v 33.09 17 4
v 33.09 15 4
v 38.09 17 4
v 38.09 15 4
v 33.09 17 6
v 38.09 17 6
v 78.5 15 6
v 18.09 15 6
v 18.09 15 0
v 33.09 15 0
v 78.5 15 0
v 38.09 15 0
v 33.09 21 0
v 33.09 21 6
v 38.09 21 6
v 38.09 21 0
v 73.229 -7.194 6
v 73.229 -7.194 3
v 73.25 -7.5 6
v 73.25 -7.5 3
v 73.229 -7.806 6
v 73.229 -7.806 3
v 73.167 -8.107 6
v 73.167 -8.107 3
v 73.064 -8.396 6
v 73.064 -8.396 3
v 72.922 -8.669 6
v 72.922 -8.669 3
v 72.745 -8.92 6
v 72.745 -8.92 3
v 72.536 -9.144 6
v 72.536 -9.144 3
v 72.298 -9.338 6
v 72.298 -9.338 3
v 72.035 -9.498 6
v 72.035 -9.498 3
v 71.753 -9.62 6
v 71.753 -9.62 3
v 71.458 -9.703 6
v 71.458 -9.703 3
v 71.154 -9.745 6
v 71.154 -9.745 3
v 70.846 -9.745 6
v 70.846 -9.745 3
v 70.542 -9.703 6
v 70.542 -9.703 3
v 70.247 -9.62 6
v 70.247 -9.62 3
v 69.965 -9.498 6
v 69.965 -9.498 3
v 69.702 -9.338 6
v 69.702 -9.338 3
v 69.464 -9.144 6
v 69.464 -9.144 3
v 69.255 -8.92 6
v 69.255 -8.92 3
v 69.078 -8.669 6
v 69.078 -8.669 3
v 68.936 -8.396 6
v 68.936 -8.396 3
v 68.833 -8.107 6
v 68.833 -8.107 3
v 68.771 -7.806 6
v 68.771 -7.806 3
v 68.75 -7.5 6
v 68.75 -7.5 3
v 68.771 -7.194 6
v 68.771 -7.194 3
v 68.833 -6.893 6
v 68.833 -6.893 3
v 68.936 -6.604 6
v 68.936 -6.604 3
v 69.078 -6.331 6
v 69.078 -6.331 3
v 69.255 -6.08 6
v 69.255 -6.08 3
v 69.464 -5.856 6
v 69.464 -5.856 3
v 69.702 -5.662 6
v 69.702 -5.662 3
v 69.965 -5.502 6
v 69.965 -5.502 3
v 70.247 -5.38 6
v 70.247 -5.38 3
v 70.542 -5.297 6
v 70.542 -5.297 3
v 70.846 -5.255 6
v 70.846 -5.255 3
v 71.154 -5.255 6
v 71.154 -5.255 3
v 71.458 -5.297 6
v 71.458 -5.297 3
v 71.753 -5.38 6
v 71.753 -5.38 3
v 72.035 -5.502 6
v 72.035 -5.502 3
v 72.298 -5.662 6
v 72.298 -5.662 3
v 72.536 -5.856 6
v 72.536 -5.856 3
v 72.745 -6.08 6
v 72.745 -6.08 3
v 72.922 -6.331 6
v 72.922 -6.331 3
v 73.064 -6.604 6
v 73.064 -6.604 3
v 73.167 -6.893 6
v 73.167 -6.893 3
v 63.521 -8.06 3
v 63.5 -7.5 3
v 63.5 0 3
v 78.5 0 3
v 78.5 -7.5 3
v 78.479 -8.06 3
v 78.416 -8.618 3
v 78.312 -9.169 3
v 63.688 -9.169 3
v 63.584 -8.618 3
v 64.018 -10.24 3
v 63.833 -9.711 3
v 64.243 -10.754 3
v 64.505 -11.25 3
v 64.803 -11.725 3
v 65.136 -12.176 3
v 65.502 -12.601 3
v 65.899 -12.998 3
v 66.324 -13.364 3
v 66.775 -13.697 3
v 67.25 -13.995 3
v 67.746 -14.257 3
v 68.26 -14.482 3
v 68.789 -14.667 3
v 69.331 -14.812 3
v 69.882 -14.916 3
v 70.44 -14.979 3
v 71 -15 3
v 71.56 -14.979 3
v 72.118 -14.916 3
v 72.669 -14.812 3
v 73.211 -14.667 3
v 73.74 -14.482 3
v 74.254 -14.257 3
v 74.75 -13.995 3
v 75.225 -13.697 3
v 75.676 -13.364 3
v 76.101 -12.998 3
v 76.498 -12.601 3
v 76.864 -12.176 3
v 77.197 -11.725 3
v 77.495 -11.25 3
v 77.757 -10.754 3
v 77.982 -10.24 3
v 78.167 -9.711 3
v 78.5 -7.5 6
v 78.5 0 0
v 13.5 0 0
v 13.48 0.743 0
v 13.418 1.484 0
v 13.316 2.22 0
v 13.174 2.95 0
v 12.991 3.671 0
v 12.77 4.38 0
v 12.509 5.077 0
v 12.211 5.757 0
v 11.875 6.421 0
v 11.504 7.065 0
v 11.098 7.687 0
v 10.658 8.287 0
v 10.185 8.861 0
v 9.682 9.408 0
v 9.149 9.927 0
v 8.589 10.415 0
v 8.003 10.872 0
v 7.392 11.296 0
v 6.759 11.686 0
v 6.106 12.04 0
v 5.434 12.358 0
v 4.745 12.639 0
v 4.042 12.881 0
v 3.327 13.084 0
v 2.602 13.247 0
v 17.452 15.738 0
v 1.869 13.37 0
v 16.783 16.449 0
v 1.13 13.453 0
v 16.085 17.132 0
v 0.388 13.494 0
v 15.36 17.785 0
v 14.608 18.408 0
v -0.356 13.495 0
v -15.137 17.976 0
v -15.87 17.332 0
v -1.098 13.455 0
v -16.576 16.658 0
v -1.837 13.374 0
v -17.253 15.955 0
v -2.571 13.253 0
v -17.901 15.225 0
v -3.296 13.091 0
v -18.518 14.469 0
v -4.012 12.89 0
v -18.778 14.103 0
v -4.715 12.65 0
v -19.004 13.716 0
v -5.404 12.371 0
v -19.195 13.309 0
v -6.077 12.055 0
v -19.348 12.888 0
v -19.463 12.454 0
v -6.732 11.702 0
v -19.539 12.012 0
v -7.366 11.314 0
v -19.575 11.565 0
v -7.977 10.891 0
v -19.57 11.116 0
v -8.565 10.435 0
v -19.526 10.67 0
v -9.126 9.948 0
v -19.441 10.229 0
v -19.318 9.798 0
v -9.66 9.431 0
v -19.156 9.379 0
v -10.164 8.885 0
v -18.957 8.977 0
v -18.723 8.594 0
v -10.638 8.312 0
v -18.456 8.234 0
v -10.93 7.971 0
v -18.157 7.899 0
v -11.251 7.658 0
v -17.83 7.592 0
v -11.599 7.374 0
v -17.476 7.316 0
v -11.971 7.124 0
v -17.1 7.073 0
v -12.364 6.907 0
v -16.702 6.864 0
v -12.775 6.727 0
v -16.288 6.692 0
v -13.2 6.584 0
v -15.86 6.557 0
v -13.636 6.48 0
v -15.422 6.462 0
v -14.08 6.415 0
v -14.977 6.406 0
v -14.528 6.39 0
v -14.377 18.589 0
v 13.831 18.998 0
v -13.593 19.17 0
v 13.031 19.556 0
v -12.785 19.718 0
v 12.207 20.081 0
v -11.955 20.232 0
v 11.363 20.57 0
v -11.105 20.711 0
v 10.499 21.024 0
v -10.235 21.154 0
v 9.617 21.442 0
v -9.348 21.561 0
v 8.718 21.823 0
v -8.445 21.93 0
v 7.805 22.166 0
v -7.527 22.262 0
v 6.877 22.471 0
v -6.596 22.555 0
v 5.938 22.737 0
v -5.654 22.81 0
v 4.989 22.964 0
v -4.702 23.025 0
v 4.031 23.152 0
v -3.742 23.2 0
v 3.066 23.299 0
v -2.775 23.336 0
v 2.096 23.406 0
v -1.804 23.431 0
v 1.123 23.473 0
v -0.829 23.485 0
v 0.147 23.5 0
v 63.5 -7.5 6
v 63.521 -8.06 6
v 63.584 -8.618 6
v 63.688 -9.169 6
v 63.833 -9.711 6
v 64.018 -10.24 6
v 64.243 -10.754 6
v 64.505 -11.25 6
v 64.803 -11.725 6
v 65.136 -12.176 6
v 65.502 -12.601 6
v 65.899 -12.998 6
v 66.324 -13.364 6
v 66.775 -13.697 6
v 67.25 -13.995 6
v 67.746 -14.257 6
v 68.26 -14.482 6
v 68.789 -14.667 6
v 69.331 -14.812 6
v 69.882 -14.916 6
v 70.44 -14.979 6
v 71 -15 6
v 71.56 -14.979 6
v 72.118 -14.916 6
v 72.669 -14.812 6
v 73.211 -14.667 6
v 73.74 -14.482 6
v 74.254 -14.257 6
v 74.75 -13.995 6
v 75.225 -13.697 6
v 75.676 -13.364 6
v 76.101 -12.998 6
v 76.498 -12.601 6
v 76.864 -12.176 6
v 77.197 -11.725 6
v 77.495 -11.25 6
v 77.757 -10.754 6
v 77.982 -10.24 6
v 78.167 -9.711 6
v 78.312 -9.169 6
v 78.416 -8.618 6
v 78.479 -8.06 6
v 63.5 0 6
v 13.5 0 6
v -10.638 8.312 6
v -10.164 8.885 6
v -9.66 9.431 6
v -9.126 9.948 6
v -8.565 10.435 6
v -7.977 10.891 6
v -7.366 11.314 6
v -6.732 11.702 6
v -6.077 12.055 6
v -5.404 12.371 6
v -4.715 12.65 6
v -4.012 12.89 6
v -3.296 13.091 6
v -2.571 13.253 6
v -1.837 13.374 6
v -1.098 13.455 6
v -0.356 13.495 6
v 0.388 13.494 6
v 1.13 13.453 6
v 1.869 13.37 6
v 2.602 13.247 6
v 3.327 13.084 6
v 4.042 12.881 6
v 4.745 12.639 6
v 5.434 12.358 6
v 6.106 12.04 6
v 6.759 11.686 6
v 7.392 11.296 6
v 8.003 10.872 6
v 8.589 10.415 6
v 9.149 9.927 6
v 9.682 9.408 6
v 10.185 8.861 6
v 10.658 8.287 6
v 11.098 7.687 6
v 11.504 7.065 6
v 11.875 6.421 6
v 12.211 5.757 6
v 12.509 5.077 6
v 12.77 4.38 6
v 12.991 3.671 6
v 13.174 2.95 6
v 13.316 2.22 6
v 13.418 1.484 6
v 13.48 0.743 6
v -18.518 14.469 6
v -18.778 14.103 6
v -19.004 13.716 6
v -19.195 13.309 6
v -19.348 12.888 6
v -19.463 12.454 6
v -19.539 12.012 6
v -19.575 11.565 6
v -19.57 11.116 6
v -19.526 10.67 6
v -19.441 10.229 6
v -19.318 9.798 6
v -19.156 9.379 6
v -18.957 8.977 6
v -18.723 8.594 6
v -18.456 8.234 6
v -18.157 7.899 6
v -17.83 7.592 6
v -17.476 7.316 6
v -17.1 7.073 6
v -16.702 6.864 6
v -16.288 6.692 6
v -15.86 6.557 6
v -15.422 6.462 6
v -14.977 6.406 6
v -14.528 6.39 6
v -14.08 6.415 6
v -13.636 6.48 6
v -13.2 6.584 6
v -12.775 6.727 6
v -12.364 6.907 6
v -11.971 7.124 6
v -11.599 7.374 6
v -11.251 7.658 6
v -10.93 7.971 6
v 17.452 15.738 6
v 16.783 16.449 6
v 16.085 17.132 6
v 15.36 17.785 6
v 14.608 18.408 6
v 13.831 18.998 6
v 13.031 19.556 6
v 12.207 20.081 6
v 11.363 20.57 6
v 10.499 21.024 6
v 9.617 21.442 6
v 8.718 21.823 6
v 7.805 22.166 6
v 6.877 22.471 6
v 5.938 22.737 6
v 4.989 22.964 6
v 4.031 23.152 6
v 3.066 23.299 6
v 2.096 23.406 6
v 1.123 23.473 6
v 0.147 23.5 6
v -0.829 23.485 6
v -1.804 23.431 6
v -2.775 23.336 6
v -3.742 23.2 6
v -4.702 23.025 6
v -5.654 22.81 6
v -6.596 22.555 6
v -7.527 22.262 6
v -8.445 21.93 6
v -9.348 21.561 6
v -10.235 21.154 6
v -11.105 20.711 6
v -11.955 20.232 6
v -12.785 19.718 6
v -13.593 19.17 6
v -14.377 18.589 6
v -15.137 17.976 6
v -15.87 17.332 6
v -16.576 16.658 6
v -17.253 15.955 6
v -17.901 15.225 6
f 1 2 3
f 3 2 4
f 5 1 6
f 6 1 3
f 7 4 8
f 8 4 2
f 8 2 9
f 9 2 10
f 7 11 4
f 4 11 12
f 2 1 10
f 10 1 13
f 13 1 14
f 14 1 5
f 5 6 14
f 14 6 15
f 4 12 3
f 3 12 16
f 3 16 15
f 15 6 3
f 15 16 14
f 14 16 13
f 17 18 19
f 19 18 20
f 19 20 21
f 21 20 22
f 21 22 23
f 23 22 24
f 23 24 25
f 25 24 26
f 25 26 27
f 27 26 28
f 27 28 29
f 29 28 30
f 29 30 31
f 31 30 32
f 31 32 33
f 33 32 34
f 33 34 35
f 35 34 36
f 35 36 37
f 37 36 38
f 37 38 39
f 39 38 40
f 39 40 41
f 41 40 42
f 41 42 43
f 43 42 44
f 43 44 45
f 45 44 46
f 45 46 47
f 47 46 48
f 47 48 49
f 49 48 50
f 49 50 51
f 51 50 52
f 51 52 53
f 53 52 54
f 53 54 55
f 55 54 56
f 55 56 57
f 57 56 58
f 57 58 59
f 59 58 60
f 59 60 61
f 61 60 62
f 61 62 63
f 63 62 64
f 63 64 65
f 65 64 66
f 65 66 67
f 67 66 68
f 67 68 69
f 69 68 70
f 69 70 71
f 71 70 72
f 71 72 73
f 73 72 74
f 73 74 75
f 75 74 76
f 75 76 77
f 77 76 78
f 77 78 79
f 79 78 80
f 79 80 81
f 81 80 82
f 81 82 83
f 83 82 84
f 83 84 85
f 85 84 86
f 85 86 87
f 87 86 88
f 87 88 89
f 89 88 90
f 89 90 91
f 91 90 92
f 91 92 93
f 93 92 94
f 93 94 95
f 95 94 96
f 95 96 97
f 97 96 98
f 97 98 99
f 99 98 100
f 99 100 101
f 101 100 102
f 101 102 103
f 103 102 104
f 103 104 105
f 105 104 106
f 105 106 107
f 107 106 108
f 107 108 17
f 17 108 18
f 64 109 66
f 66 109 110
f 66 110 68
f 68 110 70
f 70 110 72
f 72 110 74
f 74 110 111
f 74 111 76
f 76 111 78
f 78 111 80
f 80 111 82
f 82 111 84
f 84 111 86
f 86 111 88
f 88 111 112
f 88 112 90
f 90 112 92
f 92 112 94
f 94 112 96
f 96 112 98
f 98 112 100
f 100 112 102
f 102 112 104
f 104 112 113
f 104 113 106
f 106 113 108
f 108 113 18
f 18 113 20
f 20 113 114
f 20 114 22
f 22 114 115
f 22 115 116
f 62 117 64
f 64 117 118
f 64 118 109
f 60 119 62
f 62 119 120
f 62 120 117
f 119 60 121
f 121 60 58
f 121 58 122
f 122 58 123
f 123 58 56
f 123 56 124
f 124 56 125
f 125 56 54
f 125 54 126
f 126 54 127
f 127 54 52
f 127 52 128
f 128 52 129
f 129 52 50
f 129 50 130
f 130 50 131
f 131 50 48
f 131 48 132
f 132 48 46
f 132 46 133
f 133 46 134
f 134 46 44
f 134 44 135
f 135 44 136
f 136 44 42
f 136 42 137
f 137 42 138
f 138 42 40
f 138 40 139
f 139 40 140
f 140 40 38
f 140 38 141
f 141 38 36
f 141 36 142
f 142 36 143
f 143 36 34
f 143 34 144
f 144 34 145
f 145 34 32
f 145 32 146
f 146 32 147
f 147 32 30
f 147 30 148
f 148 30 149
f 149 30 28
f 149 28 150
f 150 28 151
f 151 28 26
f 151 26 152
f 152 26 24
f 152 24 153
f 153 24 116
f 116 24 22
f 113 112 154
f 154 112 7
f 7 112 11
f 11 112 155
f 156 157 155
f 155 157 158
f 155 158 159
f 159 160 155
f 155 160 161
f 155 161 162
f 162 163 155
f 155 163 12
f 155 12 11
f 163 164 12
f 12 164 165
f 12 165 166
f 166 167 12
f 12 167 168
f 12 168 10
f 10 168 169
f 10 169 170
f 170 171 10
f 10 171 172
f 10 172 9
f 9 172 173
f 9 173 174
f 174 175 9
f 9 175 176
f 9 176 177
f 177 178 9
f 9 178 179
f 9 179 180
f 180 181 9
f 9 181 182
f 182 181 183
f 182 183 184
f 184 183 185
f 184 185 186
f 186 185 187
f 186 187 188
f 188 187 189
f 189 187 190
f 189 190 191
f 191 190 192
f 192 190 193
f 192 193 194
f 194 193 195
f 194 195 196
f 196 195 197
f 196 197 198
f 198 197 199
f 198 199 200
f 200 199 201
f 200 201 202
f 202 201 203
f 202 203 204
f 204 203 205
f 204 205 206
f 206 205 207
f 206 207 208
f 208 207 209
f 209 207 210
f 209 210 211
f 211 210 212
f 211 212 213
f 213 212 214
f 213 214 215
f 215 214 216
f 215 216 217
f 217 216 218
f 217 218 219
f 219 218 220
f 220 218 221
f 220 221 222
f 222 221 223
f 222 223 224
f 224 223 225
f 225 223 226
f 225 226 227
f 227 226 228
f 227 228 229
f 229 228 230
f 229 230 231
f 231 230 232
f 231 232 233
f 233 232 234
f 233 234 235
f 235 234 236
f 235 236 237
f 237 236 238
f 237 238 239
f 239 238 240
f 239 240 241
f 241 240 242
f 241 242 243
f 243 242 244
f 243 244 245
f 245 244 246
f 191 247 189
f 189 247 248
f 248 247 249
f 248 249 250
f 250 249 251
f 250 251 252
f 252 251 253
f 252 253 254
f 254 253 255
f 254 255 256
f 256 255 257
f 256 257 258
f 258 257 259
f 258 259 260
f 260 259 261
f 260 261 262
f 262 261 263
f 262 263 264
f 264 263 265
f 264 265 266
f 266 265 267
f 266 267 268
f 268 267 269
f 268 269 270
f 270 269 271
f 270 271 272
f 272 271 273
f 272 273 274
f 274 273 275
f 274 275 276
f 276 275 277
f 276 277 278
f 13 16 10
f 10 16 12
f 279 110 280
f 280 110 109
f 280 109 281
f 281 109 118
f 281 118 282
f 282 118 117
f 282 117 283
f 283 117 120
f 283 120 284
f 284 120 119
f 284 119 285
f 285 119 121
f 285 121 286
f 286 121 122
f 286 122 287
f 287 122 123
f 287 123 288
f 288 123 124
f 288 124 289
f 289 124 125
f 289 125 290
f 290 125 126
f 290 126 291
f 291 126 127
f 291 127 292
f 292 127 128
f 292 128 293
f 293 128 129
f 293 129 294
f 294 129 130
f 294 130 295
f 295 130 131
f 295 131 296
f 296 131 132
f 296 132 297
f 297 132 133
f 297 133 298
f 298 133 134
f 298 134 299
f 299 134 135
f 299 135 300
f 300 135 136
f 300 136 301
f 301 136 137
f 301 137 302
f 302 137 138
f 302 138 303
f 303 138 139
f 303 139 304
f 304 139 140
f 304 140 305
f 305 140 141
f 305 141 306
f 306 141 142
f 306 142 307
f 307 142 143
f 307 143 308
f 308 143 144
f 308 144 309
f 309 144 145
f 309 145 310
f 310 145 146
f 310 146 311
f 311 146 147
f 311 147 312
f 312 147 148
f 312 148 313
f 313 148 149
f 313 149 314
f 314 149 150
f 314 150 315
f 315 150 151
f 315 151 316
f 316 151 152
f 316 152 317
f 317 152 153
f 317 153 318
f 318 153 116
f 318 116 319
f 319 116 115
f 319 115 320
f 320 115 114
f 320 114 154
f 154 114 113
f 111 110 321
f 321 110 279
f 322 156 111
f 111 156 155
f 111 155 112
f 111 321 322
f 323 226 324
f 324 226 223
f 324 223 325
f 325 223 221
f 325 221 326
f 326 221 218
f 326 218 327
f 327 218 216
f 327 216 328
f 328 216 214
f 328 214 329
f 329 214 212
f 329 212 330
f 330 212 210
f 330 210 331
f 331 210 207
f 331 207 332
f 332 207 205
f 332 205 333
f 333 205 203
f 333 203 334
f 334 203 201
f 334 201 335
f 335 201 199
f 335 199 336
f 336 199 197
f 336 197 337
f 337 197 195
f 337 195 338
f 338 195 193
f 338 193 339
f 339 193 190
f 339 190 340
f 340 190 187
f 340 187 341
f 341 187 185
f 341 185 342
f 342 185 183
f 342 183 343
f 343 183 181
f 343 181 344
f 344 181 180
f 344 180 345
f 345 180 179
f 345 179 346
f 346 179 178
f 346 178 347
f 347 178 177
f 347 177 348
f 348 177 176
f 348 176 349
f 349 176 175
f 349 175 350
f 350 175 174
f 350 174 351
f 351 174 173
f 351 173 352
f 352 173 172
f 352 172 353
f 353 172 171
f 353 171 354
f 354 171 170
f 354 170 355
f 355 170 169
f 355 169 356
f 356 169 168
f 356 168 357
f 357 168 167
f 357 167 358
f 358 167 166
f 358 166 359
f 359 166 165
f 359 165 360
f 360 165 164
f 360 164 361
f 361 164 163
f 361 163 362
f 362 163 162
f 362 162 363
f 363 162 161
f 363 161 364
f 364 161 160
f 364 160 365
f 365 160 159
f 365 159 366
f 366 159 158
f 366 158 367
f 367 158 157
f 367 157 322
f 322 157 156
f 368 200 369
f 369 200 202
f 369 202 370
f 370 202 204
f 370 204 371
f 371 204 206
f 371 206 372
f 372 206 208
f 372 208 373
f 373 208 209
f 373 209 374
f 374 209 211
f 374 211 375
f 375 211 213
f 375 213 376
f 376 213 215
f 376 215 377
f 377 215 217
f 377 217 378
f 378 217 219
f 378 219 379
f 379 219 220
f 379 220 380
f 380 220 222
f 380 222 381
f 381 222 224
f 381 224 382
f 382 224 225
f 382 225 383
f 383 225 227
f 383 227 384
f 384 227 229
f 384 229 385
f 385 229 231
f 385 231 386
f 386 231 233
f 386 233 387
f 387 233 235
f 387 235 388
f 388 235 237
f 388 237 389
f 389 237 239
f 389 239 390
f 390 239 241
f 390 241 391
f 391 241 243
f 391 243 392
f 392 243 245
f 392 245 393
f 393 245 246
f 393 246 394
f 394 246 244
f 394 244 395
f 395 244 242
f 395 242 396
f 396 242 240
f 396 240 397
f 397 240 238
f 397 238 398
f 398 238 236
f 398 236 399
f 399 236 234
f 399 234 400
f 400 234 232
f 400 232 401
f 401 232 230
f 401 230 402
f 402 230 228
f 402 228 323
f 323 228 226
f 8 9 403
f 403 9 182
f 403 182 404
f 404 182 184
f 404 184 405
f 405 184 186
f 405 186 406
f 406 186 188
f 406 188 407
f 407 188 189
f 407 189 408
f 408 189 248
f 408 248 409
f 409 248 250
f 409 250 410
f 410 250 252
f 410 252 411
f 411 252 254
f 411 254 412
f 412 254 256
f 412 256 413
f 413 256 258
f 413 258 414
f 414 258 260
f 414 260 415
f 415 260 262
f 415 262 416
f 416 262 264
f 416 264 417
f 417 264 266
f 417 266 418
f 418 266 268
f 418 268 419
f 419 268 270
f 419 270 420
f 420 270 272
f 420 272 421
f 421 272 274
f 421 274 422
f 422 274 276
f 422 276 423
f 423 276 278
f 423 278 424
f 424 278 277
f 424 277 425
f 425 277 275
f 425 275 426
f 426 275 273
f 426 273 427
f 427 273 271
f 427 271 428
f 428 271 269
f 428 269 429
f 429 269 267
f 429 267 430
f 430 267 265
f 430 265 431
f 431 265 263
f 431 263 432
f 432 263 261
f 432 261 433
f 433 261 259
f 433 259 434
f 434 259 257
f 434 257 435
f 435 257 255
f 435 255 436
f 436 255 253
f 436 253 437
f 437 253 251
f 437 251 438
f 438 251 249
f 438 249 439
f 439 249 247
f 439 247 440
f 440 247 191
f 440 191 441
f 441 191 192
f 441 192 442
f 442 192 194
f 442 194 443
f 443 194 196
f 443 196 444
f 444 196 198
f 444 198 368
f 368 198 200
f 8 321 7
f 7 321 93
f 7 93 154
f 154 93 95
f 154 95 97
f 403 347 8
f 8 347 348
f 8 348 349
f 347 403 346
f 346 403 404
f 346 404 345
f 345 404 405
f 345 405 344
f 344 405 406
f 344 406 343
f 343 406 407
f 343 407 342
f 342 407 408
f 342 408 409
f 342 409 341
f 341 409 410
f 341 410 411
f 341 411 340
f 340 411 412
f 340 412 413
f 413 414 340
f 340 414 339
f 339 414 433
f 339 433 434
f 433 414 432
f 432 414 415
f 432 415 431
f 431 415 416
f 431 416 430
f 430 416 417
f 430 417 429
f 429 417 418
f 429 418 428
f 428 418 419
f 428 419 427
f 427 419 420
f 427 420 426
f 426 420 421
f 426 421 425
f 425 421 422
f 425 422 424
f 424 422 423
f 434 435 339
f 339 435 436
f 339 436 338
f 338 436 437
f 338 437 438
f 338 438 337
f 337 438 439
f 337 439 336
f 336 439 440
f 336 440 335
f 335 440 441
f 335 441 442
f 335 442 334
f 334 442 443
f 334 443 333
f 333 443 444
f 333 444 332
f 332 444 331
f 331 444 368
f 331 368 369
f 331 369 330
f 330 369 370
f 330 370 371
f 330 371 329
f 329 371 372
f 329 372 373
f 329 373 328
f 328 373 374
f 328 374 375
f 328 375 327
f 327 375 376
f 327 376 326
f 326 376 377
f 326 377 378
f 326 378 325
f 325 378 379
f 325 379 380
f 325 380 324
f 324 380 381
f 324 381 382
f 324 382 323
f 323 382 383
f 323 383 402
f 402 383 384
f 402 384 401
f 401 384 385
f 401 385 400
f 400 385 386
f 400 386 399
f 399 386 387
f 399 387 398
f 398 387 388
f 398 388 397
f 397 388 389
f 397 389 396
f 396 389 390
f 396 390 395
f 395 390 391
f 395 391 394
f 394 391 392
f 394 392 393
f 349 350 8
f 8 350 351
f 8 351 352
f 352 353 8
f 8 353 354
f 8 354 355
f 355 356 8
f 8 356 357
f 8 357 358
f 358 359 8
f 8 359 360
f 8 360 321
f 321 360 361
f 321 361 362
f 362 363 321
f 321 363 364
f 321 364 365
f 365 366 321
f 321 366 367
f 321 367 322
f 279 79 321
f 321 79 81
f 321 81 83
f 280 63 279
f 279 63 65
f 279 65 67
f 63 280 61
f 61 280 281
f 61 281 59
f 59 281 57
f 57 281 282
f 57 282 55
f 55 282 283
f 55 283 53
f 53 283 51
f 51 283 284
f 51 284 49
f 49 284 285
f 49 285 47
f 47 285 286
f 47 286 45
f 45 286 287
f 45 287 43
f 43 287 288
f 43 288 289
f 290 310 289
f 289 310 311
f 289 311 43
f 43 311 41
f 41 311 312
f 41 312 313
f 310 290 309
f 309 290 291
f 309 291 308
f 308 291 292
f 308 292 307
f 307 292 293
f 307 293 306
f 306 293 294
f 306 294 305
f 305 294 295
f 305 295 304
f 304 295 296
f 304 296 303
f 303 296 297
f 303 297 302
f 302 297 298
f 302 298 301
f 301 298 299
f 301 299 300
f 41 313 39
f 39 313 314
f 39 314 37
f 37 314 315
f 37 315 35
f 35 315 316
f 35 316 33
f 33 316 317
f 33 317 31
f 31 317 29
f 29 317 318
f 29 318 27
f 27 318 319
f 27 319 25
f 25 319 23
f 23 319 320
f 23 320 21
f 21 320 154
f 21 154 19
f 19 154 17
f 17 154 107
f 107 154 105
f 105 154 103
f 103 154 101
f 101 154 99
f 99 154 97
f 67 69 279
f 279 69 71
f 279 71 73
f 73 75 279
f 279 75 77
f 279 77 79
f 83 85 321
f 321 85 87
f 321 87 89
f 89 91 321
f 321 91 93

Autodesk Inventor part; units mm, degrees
ref_plane "YZ Plane" through (0, 0, 0) normal (1, 0, 0) x (0, 1, 0)
ref_plane "XZ Plane" through (0, 0, 0) normal (0, 1, 0) x (-1, 0, 0)
ref_plane "XY Plane" through (0, 0, 0) normal (0, 0, 1) x (1, 0, 0)
sketch "スケッチ4" plane through (0, 0, 0) normal (0, 0, 1) x (1, 0, 0)
  circle A0 centre (0, 0) radius 13.5
  circle A1 centre (0, 0) radius 23.5
  circle A2 centre (-14.5779, 11.3901) radius 5
  line L0 (13.5, 0) -> (78.5, 0)
  line L1 (78.5, 0) -> (78.5, 15)
  line L2 (78.5, 15) -> (13.5, 15)
  line L3 (13.5, 15) -> (13.5, 0)
  circle A3 centre (71, -7.5) radius 7.5
  line L4 (63.5, 0) -> (78.5, 0)
  line L5 (78.5, 0) -> (78.5, -7.5)
  line L6 (78.5, -7.5) -> (63.5, -7.5)
  line L7 (63.5, -7.5) -> (63.5, 0)
  point P0 (-10.6379, 8.3117)
  point P1 (78.5, 0)
  point P2 (18.0901, 15)
  point P3 (-18.5179, 14.4685)
  dimension "d15" = 27
  dimension "d19" = 15
  dimension "d16" = 47
  dimension "d17" = 65
  dimension "d18" = 15
extrude "押し出し3" add sketch "スケッチ4" along normal blind 6 contours L3 L2 A1 L0 | A0 A2 A1 L2 L3 | A2 | A1 L2 L1 L0 | L0 A3 L7 | L0 L5 A3 | A3 L6 | L6 A3
sketch "スケッチ5" plane through (0, 0, 0) normal (0, 0, -1) x (-1, 0, 0)
  line L0 (-78.5, -7.5) -> (-78.5, 15) projected
  line L1 (-63.5, 0) -> (-63.5, -7.5) projected
  line L2 (-78.5, 0) -> (-63.5, 0)
  line L3 (-63.5, 0) -> (-63.5, -7.5)
  line L4 (-63.5, -7.5) -> (-78.5, -7.5)
  line L5 (-78.5, -7.5) -> (-78.5, 0)
  circle A0 centre (-71, -7.5) radius 7.5
  point P0 (0, 0)
extrude "押し出し4" cut sketch "スケッチ5" against normal blind 3
sketch "スケッチ6" plane through (0, 0, 3) normal (0, 0, -1) x (-1, 0, 0)
  arc A0 (-78.5, -7.5) -> (-63.5, -7.5) centre (-71, -7.5) ccw projected
  point P0 (0, 0)
hole "穴2" at (71, -7.5, 3) direction (0, 0, 1) diameter 4.5 end through all
sketch "スケッチ7" plane through (18.0901, 15, 0) normal (0, 1, 0) x (1, 0, 0)
  line L0 (60.4099, -6) -> (0, -6) projected
  line L1 (-4.5901, 0) -> (60.4099, 0) projected
  line L2 (15, -6) -> (20, -6)
  line L3 (20, -6) -> (20, 0)
  line L4 (20, 0) -> (15, 0)
  line L5 (15, 0) -> (15, -6)
  line L6 (0, 0) -> (0, -6) projected
  point P0 (-18.0901, 0)
  dimension "d31" = 5
  dimension "d32" = 15
extrude "押し出し5" add sketch "スケッチ7" along normal blind 6 contours L0 L5 L1 L3
sketch "スケッチ8" plane through (38.0901, 15, 6) normal (1, 0, 0) x (0, 0, -1)
  line L0 (0, 0) -> (2, 0)
  line L1 (2, 0) -> (2, 2)
  line L2 (2, 2) -> (0, 2)
  line L3 (0, 2) -> (0, 0)
  point P0 (6, -15)
  dimension "d35" = 2
  dimension "d36" = 2
extrude "押し出し6" cut sketch "スケッチ8" against normal blind 6
properties part number "エアタンクペットボトル抑え２"
